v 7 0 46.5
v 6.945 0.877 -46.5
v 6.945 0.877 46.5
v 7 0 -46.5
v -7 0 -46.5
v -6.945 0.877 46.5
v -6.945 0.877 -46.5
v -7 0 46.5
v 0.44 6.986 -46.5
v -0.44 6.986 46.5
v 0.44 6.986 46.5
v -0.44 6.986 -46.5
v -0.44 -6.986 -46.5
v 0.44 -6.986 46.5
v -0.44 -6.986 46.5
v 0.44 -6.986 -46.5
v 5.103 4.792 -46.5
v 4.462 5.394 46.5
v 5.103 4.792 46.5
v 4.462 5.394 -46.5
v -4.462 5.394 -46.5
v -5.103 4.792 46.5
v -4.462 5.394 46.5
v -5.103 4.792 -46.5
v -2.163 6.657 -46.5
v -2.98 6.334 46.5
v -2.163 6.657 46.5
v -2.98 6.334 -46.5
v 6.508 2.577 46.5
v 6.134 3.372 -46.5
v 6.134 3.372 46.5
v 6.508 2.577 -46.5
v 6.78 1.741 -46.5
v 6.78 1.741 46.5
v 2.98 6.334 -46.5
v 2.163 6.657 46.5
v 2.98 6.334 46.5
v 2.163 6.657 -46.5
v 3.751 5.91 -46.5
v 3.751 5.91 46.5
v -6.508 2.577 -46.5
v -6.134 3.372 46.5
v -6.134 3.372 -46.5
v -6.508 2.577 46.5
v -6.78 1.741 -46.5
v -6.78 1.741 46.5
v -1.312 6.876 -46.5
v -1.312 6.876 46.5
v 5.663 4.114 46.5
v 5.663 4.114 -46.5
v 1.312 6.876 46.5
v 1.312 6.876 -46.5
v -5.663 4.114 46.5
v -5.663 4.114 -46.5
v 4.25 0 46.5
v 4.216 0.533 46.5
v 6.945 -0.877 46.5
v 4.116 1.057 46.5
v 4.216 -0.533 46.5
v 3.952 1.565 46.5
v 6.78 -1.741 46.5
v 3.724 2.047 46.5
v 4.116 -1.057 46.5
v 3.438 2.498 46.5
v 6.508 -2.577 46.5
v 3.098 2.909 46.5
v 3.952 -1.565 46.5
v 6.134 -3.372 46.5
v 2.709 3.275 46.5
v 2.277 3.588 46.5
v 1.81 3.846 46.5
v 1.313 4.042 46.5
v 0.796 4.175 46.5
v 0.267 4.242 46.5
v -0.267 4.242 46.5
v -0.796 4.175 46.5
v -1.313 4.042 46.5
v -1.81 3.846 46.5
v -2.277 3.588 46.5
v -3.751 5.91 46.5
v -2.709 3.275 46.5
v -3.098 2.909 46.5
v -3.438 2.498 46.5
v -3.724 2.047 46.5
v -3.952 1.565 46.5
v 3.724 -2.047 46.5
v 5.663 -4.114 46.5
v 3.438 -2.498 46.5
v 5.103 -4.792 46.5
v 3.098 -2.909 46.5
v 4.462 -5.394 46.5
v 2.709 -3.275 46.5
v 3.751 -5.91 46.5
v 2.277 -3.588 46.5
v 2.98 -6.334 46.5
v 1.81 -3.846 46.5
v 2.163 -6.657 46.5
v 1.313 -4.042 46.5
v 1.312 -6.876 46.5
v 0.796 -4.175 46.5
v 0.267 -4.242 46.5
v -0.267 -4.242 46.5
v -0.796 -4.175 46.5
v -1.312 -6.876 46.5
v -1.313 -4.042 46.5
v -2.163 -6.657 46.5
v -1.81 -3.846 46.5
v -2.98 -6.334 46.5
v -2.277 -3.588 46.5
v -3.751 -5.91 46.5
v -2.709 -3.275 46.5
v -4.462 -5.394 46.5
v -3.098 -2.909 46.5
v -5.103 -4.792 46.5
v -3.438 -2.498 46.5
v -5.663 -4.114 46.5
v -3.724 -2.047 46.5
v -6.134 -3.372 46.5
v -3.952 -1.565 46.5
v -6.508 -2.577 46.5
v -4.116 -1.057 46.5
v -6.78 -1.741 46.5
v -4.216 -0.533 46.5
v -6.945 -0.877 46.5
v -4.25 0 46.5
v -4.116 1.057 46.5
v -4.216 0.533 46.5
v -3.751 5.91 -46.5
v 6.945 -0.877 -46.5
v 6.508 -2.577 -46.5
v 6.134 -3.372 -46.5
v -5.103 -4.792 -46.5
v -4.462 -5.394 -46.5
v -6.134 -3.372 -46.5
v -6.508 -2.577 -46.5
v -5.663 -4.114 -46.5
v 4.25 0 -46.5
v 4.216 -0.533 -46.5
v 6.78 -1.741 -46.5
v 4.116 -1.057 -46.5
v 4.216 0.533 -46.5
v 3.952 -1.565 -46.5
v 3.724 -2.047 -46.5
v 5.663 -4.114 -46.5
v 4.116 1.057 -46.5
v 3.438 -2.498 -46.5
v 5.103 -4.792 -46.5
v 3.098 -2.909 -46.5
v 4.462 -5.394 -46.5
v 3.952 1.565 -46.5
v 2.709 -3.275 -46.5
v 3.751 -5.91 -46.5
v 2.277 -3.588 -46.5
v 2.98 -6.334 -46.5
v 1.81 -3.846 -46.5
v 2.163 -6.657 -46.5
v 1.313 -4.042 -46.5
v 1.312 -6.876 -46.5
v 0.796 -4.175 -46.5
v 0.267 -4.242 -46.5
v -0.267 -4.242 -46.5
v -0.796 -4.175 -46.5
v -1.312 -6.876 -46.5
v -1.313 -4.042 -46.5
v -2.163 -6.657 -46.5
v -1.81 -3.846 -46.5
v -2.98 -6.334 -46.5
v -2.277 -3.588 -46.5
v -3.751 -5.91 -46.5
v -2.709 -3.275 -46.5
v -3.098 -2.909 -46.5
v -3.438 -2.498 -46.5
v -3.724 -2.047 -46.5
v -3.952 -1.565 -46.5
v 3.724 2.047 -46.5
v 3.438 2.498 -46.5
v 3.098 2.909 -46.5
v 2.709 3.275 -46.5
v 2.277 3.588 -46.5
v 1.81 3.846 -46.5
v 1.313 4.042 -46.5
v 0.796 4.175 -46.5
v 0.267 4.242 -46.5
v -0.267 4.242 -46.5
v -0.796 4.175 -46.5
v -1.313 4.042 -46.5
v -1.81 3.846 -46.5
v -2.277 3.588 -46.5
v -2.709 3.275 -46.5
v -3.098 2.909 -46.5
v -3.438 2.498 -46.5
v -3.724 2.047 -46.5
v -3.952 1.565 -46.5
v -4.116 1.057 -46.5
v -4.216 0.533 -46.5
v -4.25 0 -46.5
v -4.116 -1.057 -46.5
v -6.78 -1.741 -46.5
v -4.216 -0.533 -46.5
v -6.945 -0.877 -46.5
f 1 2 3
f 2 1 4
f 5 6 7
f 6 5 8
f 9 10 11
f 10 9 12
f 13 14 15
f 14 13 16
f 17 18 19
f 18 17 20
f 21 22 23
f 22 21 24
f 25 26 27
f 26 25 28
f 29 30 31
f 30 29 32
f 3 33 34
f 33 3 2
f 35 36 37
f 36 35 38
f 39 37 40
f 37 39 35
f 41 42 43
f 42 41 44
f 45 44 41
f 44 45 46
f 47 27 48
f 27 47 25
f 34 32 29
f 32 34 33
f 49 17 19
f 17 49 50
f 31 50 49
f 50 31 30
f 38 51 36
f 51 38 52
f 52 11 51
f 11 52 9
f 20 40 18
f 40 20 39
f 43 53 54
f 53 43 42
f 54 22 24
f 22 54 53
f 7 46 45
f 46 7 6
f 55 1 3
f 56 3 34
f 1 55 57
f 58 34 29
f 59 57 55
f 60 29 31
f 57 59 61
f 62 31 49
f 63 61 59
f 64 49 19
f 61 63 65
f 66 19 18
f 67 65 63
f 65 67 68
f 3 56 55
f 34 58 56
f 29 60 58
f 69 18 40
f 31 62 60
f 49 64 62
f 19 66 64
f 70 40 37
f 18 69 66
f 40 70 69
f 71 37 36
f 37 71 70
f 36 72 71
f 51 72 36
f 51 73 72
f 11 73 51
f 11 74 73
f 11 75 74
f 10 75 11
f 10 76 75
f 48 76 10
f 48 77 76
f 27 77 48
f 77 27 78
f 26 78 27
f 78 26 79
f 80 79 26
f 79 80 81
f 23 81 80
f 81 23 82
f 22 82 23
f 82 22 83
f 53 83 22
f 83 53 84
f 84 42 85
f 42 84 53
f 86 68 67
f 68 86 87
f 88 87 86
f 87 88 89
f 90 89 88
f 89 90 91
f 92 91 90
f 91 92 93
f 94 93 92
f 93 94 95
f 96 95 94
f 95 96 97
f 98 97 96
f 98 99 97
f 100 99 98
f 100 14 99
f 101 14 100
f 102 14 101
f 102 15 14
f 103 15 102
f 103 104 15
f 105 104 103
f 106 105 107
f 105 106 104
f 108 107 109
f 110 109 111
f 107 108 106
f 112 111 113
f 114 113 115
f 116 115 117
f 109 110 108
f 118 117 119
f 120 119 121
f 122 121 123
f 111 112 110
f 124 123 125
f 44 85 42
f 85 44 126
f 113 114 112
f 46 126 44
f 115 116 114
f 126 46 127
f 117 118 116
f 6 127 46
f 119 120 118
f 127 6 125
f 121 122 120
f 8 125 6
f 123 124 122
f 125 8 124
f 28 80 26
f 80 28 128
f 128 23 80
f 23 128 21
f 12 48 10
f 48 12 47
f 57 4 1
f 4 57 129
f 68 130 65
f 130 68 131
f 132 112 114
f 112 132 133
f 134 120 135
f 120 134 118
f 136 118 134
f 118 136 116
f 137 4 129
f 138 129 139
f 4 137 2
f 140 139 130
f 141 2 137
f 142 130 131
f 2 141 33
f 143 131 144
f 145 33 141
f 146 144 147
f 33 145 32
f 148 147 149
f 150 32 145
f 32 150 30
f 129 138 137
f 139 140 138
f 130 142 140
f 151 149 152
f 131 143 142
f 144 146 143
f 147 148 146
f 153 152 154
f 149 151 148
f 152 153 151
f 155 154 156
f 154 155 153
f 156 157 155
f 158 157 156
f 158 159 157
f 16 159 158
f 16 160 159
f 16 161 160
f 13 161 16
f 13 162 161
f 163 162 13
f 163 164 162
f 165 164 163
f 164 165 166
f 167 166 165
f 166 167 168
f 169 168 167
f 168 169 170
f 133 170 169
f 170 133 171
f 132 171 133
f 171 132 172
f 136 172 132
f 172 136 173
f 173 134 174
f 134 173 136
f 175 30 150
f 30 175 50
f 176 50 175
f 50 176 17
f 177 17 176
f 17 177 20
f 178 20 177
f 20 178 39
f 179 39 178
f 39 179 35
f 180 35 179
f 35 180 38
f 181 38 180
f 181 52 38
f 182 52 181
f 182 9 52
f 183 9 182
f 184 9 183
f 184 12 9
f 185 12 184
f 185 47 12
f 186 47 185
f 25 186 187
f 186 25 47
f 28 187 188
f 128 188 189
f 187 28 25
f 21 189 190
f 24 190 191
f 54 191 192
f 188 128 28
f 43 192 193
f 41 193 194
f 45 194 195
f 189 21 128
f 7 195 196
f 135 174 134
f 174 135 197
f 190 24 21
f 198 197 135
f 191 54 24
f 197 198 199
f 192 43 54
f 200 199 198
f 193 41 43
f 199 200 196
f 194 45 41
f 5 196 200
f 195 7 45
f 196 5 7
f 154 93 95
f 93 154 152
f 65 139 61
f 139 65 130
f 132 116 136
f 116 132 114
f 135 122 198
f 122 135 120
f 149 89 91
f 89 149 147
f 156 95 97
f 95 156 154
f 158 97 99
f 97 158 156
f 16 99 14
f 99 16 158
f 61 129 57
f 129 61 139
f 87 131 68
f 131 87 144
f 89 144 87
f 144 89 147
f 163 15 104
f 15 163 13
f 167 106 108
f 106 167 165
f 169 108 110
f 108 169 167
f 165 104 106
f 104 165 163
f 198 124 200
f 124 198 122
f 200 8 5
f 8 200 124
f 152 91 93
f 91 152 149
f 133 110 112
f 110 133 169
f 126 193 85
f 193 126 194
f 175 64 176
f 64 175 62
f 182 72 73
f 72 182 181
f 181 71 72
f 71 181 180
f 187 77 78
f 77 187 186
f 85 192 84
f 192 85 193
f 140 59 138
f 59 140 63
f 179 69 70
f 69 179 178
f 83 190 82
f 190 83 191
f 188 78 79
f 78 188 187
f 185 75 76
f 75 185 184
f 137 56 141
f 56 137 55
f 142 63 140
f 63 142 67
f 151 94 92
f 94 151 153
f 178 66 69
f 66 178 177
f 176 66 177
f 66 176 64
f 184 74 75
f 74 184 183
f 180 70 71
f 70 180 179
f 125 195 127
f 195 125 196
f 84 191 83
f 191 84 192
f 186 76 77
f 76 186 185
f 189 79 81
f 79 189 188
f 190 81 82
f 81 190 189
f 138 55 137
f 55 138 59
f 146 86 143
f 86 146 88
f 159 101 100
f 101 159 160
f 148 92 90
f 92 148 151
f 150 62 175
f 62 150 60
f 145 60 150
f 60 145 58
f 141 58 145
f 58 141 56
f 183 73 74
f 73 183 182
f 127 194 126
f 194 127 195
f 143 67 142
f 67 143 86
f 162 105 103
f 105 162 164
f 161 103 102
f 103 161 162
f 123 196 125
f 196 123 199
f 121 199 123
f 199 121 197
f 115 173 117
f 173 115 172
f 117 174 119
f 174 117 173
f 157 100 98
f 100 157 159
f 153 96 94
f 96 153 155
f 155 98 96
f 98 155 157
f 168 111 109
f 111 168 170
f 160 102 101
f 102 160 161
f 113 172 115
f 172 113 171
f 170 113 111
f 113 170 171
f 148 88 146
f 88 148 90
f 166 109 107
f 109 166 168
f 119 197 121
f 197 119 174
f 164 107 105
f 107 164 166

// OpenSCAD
$fn = 50;


difference() {
	union() {
		translate(v = [0, 0, -46.5000000000]) {
			cylinder(h = 93, r = 7.0000000000);
		}
	}
	union() {
		translate(v = [0, 0, -100.0000000000]) {
			cylinder(h = 200, r = 4.2500000000);
		}
	}
}
